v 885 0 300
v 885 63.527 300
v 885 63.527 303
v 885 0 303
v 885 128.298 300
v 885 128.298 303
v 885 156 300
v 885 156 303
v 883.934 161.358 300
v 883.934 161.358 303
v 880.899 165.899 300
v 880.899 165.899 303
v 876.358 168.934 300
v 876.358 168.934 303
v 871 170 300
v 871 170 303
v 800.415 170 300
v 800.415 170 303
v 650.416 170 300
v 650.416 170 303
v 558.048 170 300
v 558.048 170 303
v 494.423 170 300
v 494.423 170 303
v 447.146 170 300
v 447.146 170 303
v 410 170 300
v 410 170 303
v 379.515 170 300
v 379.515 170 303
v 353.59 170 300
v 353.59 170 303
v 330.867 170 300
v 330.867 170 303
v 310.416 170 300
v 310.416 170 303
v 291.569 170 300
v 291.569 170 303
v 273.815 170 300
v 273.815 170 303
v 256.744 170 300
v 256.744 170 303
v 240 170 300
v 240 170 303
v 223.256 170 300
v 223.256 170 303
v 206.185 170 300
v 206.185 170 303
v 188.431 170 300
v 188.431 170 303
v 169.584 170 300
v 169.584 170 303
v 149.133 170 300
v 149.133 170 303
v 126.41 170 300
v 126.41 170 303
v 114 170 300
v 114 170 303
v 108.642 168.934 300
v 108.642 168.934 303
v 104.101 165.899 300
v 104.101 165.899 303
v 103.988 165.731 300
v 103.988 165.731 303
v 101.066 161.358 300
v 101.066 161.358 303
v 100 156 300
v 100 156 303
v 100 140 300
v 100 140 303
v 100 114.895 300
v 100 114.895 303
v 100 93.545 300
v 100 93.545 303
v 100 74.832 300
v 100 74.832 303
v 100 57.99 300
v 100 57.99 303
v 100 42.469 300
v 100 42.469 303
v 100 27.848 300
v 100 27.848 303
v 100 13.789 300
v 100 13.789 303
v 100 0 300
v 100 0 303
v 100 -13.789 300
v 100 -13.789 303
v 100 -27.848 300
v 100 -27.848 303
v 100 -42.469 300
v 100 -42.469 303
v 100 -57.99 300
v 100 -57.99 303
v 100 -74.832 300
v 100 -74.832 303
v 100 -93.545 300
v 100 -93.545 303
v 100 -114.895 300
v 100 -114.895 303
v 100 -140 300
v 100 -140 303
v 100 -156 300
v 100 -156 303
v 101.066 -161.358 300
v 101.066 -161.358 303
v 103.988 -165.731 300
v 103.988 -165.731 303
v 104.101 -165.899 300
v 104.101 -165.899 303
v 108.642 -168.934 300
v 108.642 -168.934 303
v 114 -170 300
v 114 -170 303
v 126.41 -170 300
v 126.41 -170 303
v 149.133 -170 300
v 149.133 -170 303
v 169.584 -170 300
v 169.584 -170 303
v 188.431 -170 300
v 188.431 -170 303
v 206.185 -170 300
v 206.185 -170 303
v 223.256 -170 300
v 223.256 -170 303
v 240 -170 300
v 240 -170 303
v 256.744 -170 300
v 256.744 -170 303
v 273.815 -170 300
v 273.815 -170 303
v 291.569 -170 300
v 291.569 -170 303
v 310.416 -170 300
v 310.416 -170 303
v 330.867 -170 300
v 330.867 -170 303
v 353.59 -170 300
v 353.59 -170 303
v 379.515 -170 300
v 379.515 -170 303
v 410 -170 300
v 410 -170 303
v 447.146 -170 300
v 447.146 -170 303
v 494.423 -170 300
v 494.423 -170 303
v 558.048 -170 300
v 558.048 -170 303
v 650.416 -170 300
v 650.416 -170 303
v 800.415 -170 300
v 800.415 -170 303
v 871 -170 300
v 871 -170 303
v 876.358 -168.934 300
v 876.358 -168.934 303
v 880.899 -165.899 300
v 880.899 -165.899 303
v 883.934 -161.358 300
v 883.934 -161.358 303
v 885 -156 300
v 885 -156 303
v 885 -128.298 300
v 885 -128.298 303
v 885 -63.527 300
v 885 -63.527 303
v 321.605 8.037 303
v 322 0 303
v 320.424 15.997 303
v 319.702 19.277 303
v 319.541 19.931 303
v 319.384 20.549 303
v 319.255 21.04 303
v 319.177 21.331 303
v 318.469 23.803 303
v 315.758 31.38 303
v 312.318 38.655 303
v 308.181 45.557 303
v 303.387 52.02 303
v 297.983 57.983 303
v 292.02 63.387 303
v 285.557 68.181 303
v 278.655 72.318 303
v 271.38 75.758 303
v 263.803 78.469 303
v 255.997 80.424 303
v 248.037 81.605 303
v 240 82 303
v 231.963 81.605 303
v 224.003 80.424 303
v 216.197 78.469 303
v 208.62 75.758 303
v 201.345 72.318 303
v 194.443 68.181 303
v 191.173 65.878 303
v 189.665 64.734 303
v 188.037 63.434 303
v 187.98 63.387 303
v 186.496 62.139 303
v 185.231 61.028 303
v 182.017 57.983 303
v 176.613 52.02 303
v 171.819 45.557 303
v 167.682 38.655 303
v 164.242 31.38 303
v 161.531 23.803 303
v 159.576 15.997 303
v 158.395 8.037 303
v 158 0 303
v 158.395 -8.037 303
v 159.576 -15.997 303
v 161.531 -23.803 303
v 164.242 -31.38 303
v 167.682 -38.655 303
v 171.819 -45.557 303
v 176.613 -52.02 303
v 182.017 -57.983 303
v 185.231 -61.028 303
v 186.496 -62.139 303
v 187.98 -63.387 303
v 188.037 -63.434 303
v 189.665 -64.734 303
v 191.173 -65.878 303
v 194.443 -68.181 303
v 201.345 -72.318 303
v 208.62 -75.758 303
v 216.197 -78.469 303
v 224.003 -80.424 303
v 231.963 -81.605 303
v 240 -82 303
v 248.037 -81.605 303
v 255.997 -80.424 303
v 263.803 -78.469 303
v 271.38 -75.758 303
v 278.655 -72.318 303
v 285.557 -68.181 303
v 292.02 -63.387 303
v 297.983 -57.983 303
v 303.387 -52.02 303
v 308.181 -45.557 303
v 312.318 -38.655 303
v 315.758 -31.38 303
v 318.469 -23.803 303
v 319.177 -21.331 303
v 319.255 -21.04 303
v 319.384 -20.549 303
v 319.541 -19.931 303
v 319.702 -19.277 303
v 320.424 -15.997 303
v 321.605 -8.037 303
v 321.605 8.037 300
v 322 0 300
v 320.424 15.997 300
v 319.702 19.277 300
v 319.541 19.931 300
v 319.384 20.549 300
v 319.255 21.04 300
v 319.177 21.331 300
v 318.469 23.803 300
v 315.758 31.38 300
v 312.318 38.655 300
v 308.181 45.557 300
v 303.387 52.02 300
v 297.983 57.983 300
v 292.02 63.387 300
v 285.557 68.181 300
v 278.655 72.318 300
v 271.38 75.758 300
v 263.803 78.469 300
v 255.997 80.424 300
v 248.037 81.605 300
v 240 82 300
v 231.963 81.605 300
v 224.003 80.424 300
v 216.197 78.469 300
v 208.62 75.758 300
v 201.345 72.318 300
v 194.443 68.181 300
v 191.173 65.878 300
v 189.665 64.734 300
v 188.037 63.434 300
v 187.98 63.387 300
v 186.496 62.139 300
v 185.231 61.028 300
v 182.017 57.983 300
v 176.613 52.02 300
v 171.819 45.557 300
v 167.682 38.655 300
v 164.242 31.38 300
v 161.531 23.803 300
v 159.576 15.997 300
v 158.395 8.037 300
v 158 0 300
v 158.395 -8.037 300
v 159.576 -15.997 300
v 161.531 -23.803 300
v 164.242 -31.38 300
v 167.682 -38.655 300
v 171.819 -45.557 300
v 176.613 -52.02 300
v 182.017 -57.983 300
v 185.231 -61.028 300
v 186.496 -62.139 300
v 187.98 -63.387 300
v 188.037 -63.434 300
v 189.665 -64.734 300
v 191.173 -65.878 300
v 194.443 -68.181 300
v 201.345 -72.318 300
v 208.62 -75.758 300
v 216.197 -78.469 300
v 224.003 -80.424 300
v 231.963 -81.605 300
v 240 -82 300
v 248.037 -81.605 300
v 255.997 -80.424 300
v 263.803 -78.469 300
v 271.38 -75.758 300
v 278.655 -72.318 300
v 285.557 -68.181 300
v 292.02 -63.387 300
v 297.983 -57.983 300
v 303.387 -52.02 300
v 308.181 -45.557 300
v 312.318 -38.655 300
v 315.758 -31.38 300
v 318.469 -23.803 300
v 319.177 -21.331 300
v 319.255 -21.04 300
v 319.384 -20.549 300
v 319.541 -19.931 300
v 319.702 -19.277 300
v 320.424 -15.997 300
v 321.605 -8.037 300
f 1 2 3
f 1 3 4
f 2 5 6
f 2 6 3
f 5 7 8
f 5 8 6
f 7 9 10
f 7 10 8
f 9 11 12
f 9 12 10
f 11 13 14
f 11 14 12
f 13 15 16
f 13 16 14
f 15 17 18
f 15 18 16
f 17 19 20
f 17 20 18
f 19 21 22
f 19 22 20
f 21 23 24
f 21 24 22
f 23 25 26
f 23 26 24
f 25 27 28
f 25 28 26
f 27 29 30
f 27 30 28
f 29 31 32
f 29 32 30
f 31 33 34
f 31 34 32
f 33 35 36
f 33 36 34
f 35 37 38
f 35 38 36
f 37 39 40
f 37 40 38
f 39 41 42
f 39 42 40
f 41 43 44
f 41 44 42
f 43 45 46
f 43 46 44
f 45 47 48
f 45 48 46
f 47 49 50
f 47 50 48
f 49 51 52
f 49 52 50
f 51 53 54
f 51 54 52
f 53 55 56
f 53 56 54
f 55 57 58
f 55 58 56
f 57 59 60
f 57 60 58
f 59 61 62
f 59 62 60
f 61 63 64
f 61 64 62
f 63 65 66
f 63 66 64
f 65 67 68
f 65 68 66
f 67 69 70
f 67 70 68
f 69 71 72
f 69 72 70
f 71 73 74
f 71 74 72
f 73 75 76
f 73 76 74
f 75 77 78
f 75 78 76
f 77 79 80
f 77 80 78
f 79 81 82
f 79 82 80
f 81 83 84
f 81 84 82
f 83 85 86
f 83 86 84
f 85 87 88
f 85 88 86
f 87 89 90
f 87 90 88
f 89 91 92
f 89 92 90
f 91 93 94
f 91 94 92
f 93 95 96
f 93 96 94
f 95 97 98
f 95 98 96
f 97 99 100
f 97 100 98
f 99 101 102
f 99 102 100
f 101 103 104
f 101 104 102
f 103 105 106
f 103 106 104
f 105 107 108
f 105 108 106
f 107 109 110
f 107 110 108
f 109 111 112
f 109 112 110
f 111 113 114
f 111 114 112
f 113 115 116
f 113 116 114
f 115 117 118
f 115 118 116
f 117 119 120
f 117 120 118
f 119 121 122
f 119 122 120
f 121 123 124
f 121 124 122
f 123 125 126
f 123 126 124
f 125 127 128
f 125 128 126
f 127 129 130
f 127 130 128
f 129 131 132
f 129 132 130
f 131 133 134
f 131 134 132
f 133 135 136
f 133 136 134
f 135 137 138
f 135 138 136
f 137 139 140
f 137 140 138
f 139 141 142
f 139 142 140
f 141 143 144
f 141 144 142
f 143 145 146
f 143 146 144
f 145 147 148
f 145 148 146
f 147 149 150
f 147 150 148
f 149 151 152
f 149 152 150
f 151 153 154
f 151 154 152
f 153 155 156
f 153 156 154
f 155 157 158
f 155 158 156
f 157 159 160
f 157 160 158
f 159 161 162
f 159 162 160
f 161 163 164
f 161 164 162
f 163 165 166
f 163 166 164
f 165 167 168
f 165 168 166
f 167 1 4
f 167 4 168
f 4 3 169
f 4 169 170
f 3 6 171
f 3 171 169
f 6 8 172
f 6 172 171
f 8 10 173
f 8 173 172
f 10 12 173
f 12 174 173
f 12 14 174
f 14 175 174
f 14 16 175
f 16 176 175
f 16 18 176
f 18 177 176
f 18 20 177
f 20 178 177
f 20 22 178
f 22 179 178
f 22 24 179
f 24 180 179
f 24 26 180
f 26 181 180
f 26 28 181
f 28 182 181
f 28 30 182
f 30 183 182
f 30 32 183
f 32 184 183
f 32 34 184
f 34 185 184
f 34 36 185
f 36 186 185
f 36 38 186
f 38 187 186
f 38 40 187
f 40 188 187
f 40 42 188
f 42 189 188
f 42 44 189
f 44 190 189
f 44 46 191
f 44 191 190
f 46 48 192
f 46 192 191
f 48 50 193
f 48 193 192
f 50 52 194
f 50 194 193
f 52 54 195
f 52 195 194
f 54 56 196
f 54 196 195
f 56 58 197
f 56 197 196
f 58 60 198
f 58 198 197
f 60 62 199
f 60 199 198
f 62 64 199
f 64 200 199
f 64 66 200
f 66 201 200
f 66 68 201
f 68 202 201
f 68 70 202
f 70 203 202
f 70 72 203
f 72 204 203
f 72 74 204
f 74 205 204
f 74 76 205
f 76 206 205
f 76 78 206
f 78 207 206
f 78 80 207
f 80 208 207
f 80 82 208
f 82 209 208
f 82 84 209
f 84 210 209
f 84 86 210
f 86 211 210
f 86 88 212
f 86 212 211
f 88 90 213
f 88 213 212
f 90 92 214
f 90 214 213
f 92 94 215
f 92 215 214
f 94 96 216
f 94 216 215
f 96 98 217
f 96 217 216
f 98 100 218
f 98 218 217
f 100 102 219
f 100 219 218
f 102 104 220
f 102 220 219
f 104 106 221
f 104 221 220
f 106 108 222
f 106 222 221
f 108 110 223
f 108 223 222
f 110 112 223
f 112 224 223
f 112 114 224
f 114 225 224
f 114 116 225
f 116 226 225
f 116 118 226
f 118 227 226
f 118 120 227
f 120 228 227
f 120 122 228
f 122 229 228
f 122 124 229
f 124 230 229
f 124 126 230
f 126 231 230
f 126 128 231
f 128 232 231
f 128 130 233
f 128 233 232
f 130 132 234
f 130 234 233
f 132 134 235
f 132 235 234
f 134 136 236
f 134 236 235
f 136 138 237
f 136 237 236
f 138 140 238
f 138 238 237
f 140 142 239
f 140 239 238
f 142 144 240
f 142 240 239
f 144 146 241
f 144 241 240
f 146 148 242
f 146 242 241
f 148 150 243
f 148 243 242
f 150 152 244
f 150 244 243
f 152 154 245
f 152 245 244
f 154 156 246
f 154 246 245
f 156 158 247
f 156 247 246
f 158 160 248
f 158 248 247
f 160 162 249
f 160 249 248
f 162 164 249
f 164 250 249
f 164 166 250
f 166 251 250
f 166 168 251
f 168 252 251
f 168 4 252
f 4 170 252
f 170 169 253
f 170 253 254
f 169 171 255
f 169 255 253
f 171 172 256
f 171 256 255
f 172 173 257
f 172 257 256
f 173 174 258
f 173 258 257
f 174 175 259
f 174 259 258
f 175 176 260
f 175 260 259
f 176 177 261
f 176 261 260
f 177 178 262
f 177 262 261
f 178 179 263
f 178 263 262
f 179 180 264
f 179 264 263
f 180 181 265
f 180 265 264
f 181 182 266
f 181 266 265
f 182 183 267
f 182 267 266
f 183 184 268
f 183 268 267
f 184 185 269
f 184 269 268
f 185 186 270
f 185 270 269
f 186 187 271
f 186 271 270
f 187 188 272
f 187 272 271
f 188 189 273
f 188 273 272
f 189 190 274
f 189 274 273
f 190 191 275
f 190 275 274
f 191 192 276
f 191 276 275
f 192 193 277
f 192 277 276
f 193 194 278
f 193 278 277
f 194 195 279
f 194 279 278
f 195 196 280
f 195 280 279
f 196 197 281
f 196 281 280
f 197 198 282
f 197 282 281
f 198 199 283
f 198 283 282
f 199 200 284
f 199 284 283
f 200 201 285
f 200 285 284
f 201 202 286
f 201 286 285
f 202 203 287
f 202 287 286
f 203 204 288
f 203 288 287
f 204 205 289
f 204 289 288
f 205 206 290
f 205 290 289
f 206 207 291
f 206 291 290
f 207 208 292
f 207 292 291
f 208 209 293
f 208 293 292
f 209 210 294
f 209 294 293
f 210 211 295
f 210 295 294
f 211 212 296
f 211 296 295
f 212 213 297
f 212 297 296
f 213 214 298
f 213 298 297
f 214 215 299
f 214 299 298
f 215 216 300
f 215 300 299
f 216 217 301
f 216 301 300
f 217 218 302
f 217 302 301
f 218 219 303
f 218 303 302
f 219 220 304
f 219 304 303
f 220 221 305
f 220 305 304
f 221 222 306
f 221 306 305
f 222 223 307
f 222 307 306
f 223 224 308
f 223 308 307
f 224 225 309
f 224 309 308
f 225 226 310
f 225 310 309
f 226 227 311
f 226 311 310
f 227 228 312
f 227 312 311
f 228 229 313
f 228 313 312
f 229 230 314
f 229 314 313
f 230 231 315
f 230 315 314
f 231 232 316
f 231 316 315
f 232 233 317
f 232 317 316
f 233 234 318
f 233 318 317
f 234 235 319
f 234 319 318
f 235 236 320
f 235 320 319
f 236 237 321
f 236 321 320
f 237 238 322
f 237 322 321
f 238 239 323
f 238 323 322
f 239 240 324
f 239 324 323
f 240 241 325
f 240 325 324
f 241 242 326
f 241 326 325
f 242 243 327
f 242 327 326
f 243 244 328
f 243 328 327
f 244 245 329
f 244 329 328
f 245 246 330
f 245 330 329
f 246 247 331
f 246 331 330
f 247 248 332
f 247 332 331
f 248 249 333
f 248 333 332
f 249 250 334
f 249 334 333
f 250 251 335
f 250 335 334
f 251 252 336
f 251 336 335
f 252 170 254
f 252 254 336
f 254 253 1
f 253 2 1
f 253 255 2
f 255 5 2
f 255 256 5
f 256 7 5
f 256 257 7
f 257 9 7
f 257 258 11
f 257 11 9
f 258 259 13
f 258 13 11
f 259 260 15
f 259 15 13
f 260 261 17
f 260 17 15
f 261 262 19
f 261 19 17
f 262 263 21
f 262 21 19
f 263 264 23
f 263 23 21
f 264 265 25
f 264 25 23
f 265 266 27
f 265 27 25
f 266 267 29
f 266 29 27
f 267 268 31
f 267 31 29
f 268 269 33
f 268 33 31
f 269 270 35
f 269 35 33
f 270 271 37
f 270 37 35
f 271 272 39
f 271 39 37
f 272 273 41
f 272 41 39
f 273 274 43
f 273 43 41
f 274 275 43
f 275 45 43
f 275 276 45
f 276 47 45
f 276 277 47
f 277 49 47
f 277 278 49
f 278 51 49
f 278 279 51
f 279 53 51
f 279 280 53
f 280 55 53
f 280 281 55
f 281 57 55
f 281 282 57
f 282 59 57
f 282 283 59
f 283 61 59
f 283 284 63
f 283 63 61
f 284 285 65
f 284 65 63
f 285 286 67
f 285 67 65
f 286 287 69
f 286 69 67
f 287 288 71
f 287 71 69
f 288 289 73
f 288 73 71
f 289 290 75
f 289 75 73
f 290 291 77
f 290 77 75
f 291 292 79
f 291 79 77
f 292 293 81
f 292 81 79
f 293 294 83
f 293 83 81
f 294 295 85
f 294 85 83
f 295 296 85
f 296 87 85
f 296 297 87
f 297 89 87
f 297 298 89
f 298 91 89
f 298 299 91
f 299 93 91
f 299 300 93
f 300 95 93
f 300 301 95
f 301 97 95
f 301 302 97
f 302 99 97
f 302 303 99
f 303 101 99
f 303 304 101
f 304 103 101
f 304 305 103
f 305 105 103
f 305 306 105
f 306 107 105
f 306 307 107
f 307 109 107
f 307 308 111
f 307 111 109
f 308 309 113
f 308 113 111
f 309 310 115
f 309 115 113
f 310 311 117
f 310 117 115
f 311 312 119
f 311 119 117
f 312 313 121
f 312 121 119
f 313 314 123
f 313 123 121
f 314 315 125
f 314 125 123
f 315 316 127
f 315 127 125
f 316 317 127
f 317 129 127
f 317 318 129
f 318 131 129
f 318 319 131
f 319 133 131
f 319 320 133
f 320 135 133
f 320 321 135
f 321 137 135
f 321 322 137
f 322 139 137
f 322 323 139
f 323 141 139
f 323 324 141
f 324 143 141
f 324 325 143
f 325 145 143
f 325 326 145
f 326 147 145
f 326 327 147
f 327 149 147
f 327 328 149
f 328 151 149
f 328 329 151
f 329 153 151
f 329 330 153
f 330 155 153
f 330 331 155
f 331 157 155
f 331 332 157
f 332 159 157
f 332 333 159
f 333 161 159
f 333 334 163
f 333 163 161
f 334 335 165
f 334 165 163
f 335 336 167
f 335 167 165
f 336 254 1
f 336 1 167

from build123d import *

# Parameters (mm, degrees)
EXTRUDE_START      = 300
EXTRUDE_SKETCH_1_R = 82
EXTRUDE_1_DEPTH    = 3


with BuildPart() as part:
    # Extrude sketch 1 → Extrude 1 (new body)
    with BuildSketch(Plane.XY.offset(EXTRUDE_START)):
        with BuildLine():
            Line((871, 170), (114, 170))
            ThreePointArc((114, 170), (104.100505063, 165.899494937), (100, 156))
            Line((100, 156), (100, -156))
            ThreePointArc((100, -156), (104.100505063, -165.899494937), (114, -170))
            Line((114, -170), (871, -170))
            ThreePointArc((871, -170), (880.899494937, -165.899494937), (885, -156))
            Line((885, -156), (885, 156))
            ThreePointArc((885, 156), (880.899494937, 165.899494937), (871, 170))
        make_face()
        with Locations((240, 0)):
            Circle(EXTRUDE_SKETCH_1_R, mode=Mode.SUBTRACT)
    extrude(amount=EXTRUDE_1_DEPTH)


solid = part.part
